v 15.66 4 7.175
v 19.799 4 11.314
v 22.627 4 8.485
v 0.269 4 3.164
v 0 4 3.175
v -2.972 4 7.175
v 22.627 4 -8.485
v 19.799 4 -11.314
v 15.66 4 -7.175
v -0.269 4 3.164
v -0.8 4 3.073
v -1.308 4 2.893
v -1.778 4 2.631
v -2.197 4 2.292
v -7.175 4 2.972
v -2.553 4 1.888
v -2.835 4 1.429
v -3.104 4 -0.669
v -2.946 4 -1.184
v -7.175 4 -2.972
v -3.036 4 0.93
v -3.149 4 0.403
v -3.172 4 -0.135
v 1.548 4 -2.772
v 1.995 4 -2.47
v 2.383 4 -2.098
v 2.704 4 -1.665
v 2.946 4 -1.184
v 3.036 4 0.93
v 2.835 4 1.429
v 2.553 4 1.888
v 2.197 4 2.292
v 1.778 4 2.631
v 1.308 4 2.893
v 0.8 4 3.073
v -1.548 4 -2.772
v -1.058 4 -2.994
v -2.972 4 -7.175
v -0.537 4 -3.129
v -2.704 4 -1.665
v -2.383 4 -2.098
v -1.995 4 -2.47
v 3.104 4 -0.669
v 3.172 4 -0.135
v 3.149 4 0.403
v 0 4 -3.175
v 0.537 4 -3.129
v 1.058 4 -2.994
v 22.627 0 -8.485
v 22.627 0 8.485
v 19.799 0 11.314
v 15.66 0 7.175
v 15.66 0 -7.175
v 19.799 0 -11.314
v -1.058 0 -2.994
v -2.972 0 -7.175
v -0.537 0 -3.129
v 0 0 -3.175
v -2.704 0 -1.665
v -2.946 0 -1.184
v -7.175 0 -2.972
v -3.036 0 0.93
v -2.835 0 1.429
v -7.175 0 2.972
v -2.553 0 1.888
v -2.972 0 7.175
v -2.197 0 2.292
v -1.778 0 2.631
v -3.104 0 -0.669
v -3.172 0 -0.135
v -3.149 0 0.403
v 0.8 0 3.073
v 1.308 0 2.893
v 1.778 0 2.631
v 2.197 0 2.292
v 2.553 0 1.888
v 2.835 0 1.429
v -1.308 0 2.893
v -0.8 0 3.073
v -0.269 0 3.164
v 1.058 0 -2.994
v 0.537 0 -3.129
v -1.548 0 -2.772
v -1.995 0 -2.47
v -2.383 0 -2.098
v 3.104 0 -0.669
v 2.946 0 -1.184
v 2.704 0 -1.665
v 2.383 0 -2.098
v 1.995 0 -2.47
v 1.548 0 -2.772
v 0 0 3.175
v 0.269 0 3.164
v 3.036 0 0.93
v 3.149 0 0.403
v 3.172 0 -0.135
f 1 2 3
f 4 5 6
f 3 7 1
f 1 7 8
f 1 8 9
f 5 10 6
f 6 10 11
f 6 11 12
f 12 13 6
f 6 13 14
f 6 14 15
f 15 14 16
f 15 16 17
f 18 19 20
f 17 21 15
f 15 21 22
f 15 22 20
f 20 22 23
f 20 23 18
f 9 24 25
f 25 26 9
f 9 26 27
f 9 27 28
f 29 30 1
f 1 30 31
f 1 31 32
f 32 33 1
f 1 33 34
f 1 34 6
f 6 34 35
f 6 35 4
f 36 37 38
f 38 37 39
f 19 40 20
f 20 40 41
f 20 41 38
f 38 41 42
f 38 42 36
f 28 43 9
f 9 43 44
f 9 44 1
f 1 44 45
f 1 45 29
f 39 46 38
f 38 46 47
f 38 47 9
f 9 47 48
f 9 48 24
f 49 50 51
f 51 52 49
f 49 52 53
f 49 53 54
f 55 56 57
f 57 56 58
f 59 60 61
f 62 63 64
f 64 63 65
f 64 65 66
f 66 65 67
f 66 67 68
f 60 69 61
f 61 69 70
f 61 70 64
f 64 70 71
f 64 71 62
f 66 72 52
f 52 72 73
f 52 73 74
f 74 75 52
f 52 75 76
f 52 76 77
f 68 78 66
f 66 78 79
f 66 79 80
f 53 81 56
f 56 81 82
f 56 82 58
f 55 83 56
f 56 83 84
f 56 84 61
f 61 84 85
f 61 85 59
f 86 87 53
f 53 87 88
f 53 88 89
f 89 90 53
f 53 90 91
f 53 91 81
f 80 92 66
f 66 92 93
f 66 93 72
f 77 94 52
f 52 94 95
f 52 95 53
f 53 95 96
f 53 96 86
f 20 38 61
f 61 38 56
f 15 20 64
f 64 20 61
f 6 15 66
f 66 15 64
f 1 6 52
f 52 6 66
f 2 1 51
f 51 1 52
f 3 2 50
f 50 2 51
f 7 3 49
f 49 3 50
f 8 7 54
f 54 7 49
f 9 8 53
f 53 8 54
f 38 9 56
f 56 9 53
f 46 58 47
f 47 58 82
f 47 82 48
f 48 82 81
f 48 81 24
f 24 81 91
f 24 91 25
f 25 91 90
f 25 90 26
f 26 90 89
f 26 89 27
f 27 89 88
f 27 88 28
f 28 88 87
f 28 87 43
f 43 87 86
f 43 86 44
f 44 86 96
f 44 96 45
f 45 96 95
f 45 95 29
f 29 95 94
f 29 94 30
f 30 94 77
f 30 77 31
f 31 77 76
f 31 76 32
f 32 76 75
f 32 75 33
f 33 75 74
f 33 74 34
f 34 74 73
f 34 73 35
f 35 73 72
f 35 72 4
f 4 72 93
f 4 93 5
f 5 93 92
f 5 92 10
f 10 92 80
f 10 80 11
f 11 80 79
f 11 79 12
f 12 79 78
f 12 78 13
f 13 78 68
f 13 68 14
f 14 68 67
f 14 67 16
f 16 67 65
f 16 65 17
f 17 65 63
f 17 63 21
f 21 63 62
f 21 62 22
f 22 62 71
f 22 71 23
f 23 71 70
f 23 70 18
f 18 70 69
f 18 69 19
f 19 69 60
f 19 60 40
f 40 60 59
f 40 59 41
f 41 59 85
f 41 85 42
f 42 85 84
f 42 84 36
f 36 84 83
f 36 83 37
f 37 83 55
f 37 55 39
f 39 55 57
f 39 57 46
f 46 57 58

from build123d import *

# Parameters (mm, degrees)
SKETCH1_R           = 3.175
BOSS_EXTRUDE1_DEPTH = 4


with BuildPart() as part:
    # Sketch1 → Boss-Extrude1 (new body)
    with BuildSketch(Plane(origin=(0, 0, 0), x_dir=(1, 0, 0), z_dir=(0, 1, 0))):
        Polygon((-7.175, 2.97198231), (-7.175, -2.97198231), (-2.97198231, -7.175), (15.660281374, -7.175), (19.798989873, -11.313708499), (22.627416998, -8.485281374), (22.627416998, 8.485281374), (19.798989873, 11.313708499), (15.660281374, 7.175), (-2.97198231, 7.175), align=None)
        with Locations(Location((0, 0, 0), (0, 0, 270))):
            Circle(SKETCH1_R, mode=Mode.SUBTRACT)
    extrude(amount=BOSS_EXTRUDE1_DEPTH)


solid = part.part
